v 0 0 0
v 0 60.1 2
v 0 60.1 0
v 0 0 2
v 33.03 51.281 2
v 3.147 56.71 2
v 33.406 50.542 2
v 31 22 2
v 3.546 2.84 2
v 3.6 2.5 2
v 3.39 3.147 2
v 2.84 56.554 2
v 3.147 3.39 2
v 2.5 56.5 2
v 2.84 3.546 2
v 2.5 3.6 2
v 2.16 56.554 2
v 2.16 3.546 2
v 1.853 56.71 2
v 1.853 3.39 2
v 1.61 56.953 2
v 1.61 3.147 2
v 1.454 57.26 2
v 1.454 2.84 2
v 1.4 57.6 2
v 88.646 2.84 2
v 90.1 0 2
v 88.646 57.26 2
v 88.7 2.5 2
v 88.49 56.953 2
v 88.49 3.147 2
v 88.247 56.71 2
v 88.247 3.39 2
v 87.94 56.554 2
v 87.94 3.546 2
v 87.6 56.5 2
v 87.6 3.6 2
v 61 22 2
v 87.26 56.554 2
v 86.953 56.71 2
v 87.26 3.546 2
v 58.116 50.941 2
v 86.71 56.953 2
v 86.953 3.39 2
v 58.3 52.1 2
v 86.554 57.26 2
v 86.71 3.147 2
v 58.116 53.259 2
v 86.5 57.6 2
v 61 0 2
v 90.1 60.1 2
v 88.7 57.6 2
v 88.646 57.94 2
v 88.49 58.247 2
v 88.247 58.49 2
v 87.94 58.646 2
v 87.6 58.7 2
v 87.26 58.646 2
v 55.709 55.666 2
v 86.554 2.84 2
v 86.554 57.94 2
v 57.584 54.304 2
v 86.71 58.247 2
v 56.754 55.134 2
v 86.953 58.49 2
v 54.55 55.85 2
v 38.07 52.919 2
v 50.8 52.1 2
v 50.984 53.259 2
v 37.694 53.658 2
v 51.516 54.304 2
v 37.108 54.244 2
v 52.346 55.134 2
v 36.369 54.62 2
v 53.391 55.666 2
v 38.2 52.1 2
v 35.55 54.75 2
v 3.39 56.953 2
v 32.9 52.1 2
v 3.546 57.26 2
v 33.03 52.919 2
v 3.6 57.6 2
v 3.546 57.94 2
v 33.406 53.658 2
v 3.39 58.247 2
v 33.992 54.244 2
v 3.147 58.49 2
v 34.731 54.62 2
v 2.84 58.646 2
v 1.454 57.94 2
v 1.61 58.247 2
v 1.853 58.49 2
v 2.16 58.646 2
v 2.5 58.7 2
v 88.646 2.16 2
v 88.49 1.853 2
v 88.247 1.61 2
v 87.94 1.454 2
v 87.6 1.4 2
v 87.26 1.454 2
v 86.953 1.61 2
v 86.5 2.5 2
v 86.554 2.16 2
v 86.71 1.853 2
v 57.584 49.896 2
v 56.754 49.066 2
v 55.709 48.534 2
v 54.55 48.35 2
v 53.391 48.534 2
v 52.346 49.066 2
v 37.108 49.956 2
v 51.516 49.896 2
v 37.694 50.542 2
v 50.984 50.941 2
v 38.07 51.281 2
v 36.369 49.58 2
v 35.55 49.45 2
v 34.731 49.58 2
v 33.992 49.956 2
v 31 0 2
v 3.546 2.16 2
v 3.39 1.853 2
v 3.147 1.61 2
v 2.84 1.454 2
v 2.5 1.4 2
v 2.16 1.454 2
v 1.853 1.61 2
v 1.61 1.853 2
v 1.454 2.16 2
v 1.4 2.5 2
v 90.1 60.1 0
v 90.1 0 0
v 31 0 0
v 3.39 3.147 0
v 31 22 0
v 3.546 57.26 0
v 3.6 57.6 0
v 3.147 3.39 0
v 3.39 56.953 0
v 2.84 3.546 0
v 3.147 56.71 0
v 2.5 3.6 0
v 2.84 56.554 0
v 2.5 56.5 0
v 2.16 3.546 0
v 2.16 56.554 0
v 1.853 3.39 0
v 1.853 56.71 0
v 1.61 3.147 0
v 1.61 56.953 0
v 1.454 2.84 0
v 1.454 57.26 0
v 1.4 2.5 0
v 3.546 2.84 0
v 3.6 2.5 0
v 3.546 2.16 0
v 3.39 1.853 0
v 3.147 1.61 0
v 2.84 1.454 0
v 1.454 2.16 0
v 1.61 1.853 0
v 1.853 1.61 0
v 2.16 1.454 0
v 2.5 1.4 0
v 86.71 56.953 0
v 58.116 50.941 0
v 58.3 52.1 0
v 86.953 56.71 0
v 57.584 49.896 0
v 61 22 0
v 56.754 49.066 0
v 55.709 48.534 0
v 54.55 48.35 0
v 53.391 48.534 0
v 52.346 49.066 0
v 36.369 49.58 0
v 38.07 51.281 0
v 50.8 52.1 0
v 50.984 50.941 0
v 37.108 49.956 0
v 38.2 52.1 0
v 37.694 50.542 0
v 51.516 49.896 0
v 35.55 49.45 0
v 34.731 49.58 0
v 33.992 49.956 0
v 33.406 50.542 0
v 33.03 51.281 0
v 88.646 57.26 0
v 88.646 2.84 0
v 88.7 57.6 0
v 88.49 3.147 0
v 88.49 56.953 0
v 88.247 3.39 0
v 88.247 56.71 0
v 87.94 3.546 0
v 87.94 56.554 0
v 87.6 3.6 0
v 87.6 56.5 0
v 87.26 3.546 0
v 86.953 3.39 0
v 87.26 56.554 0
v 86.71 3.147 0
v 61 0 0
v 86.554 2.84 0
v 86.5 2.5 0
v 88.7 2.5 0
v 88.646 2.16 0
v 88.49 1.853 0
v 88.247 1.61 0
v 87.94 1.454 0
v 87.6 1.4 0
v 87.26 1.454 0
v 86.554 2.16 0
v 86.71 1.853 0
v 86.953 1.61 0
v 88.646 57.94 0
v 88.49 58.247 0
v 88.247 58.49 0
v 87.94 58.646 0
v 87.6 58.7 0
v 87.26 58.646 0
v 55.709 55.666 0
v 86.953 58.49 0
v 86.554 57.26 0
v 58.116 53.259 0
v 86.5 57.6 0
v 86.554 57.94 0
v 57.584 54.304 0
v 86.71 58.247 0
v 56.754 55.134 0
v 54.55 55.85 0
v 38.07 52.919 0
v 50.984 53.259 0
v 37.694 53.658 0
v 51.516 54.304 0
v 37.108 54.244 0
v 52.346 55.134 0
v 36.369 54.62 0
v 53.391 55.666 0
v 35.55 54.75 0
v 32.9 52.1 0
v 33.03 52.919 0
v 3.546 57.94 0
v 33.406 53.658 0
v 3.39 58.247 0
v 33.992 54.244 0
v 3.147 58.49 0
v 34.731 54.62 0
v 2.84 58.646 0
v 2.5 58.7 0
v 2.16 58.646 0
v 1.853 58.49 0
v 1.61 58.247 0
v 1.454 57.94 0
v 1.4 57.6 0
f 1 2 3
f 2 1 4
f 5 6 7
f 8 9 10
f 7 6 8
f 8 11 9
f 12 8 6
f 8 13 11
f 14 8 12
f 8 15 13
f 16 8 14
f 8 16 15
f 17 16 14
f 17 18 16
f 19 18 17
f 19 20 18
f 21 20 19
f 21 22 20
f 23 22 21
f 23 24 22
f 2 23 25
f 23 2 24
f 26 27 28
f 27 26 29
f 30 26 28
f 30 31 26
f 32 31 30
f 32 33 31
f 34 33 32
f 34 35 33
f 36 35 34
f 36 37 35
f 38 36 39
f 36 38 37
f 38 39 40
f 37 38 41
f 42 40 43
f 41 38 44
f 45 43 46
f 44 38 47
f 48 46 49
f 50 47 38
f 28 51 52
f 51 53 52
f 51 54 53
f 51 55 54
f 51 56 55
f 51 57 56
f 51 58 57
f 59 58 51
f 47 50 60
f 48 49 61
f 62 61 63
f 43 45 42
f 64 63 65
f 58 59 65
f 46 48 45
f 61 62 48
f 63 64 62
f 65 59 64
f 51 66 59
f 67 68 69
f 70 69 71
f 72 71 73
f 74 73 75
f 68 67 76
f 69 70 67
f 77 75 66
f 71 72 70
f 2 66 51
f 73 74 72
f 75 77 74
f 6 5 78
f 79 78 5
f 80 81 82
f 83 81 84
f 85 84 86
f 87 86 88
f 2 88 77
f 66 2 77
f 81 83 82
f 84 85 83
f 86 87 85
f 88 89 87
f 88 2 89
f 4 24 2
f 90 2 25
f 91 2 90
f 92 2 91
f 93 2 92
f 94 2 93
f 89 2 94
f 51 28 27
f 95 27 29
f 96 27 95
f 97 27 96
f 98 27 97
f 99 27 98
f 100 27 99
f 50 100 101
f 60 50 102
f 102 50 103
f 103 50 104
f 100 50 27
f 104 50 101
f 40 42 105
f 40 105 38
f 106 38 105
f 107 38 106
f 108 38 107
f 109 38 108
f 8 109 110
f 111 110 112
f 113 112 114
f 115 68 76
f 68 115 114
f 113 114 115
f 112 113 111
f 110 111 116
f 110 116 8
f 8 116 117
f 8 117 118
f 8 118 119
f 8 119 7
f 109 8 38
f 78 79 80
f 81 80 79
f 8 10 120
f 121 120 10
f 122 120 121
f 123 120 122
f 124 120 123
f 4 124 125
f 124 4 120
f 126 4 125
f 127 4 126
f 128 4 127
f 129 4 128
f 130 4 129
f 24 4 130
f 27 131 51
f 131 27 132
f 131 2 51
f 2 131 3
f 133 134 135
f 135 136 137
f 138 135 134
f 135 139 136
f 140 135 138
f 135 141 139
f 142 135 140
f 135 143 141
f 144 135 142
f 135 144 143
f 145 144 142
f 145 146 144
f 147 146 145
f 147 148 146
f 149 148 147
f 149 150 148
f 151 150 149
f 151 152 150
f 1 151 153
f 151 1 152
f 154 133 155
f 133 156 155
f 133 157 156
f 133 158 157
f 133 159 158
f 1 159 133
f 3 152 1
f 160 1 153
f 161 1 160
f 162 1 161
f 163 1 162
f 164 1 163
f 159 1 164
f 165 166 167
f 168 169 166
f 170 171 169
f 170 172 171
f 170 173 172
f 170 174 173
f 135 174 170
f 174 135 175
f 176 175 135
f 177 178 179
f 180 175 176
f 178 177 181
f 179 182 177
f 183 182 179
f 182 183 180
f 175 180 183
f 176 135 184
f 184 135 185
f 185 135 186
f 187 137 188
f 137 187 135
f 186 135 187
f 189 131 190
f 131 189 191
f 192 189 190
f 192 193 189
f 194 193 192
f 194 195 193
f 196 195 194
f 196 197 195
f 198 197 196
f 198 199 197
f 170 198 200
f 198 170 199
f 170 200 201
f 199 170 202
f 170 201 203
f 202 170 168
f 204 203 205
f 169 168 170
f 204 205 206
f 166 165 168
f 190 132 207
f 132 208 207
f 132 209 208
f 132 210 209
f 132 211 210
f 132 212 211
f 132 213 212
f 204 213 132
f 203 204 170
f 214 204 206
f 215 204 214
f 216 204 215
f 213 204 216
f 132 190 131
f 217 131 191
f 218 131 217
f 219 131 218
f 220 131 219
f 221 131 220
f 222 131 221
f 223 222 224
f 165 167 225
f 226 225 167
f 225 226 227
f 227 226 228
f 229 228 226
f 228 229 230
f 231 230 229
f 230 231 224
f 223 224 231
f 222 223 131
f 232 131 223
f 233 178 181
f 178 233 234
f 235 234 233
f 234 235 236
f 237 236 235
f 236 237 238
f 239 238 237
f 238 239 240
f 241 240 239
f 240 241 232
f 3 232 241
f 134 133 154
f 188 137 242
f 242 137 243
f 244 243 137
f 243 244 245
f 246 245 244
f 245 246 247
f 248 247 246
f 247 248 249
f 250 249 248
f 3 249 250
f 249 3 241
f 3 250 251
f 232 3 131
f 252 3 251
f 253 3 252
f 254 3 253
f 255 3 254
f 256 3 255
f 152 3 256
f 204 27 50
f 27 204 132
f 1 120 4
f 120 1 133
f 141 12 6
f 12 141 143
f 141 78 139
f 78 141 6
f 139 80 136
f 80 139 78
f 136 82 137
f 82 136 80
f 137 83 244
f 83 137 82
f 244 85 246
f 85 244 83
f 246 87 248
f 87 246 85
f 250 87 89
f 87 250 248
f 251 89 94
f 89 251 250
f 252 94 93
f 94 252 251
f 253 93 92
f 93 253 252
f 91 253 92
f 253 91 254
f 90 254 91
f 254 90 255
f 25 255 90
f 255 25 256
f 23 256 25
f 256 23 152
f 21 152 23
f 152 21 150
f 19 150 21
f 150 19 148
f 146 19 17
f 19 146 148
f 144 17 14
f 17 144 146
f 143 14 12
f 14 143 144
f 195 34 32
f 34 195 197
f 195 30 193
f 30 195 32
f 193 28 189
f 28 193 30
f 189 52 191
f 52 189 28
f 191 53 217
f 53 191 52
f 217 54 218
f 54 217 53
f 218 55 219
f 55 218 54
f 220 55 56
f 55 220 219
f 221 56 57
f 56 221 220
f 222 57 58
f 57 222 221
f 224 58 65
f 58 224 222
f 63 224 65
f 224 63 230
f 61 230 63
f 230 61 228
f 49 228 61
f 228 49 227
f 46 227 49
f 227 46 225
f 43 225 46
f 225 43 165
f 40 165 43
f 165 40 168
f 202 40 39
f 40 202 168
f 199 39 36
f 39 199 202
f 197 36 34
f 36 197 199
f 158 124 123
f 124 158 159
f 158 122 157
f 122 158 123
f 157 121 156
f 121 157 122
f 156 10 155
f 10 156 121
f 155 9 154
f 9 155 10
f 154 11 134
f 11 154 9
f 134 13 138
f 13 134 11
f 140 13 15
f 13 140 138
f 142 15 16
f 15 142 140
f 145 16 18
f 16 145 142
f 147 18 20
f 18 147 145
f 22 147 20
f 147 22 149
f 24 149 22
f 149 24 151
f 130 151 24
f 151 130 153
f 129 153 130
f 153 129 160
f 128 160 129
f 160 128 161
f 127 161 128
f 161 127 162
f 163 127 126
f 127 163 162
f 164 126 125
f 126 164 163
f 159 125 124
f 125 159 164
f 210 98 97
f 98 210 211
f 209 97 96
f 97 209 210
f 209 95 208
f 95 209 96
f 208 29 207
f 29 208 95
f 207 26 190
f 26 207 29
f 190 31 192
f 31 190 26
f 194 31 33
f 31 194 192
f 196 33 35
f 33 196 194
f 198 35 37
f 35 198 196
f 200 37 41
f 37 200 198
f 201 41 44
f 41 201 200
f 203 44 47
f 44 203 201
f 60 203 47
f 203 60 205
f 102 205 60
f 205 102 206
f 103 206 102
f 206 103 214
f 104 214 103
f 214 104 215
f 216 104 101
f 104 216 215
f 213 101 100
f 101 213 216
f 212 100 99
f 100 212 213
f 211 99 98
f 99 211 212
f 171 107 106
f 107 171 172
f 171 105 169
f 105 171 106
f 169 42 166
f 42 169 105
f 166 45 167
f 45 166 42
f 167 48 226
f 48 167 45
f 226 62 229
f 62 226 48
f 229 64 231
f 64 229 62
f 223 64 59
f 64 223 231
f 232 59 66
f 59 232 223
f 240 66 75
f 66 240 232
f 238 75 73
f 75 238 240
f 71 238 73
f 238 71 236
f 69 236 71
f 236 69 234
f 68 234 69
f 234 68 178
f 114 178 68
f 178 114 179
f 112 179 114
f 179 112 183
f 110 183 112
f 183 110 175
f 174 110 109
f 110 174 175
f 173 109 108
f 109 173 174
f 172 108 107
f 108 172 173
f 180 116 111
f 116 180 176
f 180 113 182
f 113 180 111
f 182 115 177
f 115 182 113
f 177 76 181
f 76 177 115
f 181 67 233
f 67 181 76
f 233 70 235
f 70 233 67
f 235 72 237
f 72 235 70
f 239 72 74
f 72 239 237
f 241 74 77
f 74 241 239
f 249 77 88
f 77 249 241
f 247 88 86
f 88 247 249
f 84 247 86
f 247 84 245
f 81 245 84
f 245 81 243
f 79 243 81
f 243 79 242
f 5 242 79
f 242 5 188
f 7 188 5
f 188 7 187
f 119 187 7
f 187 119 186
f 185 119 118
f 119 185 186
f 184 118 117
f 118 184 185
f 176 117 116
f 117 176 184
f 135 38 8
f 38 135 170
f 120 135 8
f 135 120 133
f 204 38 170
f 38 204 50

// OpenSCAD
// file: config.scad
pcb_length = 66.1;
pcb_width = 36.1;
pcb_height = 15;
pcb_clearance = 4;

empty_width = 16;

thread_base_height = 7;
thread_base_d = 7.3;

thread_hole_height = 5.7;
thread_hole_d = 4.3;

length = pcb_length + 24;
width = pcb_width + empty_width + (2 * pcb_clearance);
height = pcb_height + thread_base_height + 1.8;

display_cut_x = 31;
display_cut_height = pcb_height - 3;
display_cut_length = 30;
display_cut_width = 22;

distance_led_button = 19;
led_x = (length - distance_led_button) / 2;
led_y = width - (empty_width / 2);

wall_thickness = 2;
box_bolt_size = 5;
box_bolt = 1.9;
box_bolt_cover = 2.2;

pcb_hole_abs_d = 2.5;

h1_x = 12 + pcb_hole_abs_d;
h1_y = pcb_clearance + pcb_hole_abs_d;
h2_x = length - 12 - pcb_hole_abs_d;
h2_y = h1_y;
h3_x = h1_x;
h3_y = pcb_clearance + pcb_hole_abs_d + 31 /* space between length holes */;
h4_x = h2_x;
h4_y = h3_y;
// main file
include <config.scad>

difference() {
    cube([length, width, wall_thickness]);

    linear_extrude(height) {
        translate([box_bolt_size/2, box_bolt_size/2, 0])
            circle(d=box_bolt_cover, $fn=20);
        translate([box_bolt_size/2, width - (box_bolt_size/2), 0])
            circle(d=box_bolt_cover, $fn=20);
        translate([length - (box_bolt_size/2), box_bolt_size/2, 0])
            circle(d=box_bolt_cover, $fn=20);
        translate([length - (box_bolt_size/2), width - (box_bolt_size/2), 0])
            circle(d=box_bolt_cover, $fn=20);
    }

    linear_extrude(height) {
        translate([led_x, led_y, 0]) {
            circle(d=5.3, $fn=20);
            translate([distance_led_button, 0, 0])
                circle(d=7.5, $fn=20);
        }

        translate([display_cut_x, 0, 0])
            square([display_cut_length, display_cut_width]);
    }
}
